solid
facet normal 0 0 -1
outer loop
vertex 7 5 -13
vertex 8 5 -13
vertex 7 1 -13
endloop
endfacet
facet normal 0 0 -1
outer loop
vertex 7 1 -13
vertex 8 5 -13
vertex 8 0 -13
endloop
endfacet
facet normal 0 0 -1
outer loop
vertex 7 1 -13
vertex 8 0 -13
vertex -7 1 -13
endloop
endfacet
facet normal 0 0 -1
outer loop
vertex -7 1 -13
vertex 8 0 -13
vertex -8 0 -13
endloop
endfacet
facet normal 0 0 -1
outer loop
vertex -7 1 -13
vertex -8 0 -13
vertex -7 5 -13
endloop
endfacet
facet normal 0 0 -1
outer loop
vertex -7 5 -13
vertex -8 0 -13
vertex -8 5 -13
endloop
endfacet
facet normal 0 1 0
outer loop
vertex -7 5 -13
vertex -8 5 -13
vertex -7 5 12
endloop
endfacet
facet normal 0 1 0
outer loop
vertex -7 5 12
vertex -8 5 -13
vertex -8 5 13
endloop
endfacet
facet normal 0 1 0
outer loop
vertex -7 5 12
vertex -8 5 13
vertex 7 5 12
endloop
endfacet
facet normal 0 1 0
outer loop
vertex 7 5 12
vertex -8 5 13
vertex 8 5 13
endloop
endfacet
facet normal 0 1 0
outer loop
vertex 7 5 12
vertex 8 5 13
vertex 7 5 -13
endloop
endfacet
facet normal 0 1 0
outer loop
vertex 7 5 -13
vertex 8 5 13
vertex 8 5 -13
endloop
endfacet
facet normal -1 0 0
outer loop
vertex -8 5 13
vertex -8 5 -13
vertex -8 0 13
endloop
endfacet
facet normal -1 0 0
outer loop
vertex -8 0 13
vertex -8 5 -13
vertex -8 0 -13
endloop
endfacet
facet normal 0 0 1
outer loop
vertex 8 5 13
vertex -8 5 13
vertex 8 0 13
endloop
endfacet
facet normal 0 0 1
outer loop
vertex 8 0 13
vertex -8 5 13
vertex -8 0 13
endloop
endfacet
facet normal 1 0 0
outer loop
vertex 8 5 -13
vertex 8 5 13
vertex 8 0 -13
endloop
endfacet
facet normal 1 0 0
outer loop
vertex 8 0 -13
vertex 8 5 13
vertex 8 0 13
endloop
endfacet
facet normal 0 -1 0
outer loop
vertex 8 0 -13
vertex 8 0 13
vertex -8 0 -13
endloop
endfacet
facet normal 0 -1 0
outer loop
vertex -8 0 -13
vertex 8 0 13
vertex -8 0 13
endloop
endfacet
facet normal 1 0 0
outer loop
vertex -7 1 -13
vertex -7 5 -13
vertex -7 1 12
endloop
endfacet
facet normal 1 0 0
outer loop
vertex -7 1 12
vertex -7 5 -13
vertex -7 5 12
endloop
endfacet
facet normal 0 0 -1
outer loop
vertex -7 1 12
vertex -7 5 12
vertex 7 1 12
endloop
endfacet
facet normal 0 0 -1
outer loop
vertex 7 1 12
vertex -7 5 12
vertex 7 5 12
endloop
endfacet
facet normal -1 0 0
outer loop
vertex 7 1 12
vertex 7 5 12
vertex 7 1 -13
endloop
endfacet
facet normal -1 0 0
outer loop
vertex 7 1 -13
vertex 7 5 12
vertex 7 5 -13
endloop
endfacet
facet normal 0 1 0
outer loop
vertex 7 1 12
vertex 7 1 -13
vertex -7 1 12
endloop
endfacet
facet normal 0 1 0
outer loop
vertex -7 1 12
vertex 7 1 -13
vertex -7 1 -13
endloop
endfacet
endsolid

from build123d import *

# Parameters (mm, degrees)
SKETCH_1_W          = 16
SKETCH_1_H          = 26
EXTRUDE_1_DEPTH     = 5
CUT_EXTRUDE_START   = 1
SKETCH_2_W          = 14
SKETCH_2_H          = 25
CUT_EXTRUDE_1_DEPTH = 10
EXTRUDE_START       = 5
SKETCH_3_W          = 16
SKETCH_3_H          = 26
EXTRUDE_3_DEPTH     = 1
CUT_EXTRUDE_START_2 = 6
SKETCH_4_W          = 14
SKETCH_4_H          = 17
CUT_EXTRUDE_2_DEPTH = 1
SKETCH_5_W          = 16
SKETCH_5_H          = 26
CUT_EXTRUDE_3_DEPTH = 1


with BuildPart() as part:
    # 스케치1 → 보스-돌출1 (new body)
    with BuildSketch(Plane(origin=(0, 0, 0), x_dir=(1, 0, 0), z_dir=(0, 1, 0))):
        Rectangle(SKETCH_1_W, SKETCH_1_H)
    extrude(amount=EXTRUDE_1_DEPTH)

    # 스케치2 → 컷-돌출1 (cut)
    with BuildSketch(Plane(origin=(0, 0, 0), x_dir=(1, 0, 0), z_dir=(0, 1, 0)).offset(CUT_EXTRUDE_START)):
        with Locations((0, 0.5)):
            Rectangle(SKETCH_2_W, SKETCH_2_H)
    extrude(amount=CUT_EXTRUDE_1_DEPTH, mode=Mode.SUBTRACT)


with BuildPart() as body_2:
    # 스케치3 → 보스-돌출3 (new body)
    with BuildSketch(Plane(origin=(0, 0, 0), x_dir=(1, 0, 0), z_dir=(0, 1, 0)).offset(EXTRUDE_START)):
        Rectangle(SKETCH_3_W, SKETCH_3_H)
    extrude(amount=EXTRUDE_3_DEPTH)

    # 스케치4 → 컷-돌출2 (cut)
    with BuildSketch(Plane(origin=(0, 0, 0), x_dir=(1, 0, 0), z_dir=(0, 1, 0)).offset(CUT_EXTRUDE_START_2)):
        with Locations((0, -1.5)):
            Rectangle(SKETCH_4_W, SKETCH_4_H)
    extrude(amount=-CUT_EXTRUDE_2_DEPTH, mode=Mode.SUBTRACT)

    # 스케치5 → 컷-돌출3 (cut)
    with BuildSketch(Plane(origin=(0, 6, 0), x_dir=(1, 0, 0), z_dir=(0, 1, 0))):
        Rectangle(SKETCH_5_W, SKETCH_5_H)
    extrude(amount=-CUT_EXTRUDE_3_DEPTH, mode=Mode.SUBTRACT)


solid = part.part
